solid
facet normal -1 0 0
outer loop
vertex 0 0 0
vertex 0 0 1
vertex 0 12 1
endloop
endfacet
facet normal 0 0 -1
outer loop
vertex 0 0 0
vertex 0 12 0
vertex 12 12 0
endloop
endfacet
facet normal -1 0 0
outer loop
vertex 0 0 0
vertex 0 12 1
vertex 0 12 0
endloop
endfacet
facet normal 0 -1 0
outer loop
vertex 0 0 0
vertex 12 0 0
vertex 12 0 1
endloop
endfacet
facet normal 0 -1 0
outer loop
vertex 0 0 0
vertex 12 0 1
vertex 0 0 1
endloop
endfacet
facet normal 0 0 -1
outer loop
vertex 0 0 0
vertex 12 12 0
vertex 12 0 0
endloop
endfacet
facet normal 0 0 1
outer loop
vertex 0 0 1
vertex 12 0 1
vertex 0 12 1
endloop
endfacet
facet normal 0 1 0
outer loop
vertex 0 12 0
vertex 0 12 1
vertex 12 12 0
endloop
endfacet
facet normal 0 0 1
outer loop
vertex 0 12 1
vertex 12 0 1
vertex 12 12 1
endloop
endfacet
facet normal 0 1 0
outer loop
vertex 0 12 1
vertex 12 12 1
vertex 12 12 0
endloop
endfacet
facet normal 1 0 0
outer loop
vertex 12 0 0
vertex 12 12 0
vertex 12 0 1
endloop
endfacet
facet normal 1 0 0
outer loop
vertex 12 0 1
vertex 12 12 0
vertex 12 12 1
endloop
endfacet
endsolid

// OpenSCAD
/* Warning, this is a very basic generator with a lot of approximation 
input data : [TQFP, VJX, 12x12x1mm, 100, , C, C04-00100C]
generated by com.zoubworld.electronics.cad.model3d.Basic
Date : Sun Feb 15 10:50:48 CET 2026
*/

//body
color("black")
translate([0,0,0])
cube([12.0,12.0,1.0], center=false);
